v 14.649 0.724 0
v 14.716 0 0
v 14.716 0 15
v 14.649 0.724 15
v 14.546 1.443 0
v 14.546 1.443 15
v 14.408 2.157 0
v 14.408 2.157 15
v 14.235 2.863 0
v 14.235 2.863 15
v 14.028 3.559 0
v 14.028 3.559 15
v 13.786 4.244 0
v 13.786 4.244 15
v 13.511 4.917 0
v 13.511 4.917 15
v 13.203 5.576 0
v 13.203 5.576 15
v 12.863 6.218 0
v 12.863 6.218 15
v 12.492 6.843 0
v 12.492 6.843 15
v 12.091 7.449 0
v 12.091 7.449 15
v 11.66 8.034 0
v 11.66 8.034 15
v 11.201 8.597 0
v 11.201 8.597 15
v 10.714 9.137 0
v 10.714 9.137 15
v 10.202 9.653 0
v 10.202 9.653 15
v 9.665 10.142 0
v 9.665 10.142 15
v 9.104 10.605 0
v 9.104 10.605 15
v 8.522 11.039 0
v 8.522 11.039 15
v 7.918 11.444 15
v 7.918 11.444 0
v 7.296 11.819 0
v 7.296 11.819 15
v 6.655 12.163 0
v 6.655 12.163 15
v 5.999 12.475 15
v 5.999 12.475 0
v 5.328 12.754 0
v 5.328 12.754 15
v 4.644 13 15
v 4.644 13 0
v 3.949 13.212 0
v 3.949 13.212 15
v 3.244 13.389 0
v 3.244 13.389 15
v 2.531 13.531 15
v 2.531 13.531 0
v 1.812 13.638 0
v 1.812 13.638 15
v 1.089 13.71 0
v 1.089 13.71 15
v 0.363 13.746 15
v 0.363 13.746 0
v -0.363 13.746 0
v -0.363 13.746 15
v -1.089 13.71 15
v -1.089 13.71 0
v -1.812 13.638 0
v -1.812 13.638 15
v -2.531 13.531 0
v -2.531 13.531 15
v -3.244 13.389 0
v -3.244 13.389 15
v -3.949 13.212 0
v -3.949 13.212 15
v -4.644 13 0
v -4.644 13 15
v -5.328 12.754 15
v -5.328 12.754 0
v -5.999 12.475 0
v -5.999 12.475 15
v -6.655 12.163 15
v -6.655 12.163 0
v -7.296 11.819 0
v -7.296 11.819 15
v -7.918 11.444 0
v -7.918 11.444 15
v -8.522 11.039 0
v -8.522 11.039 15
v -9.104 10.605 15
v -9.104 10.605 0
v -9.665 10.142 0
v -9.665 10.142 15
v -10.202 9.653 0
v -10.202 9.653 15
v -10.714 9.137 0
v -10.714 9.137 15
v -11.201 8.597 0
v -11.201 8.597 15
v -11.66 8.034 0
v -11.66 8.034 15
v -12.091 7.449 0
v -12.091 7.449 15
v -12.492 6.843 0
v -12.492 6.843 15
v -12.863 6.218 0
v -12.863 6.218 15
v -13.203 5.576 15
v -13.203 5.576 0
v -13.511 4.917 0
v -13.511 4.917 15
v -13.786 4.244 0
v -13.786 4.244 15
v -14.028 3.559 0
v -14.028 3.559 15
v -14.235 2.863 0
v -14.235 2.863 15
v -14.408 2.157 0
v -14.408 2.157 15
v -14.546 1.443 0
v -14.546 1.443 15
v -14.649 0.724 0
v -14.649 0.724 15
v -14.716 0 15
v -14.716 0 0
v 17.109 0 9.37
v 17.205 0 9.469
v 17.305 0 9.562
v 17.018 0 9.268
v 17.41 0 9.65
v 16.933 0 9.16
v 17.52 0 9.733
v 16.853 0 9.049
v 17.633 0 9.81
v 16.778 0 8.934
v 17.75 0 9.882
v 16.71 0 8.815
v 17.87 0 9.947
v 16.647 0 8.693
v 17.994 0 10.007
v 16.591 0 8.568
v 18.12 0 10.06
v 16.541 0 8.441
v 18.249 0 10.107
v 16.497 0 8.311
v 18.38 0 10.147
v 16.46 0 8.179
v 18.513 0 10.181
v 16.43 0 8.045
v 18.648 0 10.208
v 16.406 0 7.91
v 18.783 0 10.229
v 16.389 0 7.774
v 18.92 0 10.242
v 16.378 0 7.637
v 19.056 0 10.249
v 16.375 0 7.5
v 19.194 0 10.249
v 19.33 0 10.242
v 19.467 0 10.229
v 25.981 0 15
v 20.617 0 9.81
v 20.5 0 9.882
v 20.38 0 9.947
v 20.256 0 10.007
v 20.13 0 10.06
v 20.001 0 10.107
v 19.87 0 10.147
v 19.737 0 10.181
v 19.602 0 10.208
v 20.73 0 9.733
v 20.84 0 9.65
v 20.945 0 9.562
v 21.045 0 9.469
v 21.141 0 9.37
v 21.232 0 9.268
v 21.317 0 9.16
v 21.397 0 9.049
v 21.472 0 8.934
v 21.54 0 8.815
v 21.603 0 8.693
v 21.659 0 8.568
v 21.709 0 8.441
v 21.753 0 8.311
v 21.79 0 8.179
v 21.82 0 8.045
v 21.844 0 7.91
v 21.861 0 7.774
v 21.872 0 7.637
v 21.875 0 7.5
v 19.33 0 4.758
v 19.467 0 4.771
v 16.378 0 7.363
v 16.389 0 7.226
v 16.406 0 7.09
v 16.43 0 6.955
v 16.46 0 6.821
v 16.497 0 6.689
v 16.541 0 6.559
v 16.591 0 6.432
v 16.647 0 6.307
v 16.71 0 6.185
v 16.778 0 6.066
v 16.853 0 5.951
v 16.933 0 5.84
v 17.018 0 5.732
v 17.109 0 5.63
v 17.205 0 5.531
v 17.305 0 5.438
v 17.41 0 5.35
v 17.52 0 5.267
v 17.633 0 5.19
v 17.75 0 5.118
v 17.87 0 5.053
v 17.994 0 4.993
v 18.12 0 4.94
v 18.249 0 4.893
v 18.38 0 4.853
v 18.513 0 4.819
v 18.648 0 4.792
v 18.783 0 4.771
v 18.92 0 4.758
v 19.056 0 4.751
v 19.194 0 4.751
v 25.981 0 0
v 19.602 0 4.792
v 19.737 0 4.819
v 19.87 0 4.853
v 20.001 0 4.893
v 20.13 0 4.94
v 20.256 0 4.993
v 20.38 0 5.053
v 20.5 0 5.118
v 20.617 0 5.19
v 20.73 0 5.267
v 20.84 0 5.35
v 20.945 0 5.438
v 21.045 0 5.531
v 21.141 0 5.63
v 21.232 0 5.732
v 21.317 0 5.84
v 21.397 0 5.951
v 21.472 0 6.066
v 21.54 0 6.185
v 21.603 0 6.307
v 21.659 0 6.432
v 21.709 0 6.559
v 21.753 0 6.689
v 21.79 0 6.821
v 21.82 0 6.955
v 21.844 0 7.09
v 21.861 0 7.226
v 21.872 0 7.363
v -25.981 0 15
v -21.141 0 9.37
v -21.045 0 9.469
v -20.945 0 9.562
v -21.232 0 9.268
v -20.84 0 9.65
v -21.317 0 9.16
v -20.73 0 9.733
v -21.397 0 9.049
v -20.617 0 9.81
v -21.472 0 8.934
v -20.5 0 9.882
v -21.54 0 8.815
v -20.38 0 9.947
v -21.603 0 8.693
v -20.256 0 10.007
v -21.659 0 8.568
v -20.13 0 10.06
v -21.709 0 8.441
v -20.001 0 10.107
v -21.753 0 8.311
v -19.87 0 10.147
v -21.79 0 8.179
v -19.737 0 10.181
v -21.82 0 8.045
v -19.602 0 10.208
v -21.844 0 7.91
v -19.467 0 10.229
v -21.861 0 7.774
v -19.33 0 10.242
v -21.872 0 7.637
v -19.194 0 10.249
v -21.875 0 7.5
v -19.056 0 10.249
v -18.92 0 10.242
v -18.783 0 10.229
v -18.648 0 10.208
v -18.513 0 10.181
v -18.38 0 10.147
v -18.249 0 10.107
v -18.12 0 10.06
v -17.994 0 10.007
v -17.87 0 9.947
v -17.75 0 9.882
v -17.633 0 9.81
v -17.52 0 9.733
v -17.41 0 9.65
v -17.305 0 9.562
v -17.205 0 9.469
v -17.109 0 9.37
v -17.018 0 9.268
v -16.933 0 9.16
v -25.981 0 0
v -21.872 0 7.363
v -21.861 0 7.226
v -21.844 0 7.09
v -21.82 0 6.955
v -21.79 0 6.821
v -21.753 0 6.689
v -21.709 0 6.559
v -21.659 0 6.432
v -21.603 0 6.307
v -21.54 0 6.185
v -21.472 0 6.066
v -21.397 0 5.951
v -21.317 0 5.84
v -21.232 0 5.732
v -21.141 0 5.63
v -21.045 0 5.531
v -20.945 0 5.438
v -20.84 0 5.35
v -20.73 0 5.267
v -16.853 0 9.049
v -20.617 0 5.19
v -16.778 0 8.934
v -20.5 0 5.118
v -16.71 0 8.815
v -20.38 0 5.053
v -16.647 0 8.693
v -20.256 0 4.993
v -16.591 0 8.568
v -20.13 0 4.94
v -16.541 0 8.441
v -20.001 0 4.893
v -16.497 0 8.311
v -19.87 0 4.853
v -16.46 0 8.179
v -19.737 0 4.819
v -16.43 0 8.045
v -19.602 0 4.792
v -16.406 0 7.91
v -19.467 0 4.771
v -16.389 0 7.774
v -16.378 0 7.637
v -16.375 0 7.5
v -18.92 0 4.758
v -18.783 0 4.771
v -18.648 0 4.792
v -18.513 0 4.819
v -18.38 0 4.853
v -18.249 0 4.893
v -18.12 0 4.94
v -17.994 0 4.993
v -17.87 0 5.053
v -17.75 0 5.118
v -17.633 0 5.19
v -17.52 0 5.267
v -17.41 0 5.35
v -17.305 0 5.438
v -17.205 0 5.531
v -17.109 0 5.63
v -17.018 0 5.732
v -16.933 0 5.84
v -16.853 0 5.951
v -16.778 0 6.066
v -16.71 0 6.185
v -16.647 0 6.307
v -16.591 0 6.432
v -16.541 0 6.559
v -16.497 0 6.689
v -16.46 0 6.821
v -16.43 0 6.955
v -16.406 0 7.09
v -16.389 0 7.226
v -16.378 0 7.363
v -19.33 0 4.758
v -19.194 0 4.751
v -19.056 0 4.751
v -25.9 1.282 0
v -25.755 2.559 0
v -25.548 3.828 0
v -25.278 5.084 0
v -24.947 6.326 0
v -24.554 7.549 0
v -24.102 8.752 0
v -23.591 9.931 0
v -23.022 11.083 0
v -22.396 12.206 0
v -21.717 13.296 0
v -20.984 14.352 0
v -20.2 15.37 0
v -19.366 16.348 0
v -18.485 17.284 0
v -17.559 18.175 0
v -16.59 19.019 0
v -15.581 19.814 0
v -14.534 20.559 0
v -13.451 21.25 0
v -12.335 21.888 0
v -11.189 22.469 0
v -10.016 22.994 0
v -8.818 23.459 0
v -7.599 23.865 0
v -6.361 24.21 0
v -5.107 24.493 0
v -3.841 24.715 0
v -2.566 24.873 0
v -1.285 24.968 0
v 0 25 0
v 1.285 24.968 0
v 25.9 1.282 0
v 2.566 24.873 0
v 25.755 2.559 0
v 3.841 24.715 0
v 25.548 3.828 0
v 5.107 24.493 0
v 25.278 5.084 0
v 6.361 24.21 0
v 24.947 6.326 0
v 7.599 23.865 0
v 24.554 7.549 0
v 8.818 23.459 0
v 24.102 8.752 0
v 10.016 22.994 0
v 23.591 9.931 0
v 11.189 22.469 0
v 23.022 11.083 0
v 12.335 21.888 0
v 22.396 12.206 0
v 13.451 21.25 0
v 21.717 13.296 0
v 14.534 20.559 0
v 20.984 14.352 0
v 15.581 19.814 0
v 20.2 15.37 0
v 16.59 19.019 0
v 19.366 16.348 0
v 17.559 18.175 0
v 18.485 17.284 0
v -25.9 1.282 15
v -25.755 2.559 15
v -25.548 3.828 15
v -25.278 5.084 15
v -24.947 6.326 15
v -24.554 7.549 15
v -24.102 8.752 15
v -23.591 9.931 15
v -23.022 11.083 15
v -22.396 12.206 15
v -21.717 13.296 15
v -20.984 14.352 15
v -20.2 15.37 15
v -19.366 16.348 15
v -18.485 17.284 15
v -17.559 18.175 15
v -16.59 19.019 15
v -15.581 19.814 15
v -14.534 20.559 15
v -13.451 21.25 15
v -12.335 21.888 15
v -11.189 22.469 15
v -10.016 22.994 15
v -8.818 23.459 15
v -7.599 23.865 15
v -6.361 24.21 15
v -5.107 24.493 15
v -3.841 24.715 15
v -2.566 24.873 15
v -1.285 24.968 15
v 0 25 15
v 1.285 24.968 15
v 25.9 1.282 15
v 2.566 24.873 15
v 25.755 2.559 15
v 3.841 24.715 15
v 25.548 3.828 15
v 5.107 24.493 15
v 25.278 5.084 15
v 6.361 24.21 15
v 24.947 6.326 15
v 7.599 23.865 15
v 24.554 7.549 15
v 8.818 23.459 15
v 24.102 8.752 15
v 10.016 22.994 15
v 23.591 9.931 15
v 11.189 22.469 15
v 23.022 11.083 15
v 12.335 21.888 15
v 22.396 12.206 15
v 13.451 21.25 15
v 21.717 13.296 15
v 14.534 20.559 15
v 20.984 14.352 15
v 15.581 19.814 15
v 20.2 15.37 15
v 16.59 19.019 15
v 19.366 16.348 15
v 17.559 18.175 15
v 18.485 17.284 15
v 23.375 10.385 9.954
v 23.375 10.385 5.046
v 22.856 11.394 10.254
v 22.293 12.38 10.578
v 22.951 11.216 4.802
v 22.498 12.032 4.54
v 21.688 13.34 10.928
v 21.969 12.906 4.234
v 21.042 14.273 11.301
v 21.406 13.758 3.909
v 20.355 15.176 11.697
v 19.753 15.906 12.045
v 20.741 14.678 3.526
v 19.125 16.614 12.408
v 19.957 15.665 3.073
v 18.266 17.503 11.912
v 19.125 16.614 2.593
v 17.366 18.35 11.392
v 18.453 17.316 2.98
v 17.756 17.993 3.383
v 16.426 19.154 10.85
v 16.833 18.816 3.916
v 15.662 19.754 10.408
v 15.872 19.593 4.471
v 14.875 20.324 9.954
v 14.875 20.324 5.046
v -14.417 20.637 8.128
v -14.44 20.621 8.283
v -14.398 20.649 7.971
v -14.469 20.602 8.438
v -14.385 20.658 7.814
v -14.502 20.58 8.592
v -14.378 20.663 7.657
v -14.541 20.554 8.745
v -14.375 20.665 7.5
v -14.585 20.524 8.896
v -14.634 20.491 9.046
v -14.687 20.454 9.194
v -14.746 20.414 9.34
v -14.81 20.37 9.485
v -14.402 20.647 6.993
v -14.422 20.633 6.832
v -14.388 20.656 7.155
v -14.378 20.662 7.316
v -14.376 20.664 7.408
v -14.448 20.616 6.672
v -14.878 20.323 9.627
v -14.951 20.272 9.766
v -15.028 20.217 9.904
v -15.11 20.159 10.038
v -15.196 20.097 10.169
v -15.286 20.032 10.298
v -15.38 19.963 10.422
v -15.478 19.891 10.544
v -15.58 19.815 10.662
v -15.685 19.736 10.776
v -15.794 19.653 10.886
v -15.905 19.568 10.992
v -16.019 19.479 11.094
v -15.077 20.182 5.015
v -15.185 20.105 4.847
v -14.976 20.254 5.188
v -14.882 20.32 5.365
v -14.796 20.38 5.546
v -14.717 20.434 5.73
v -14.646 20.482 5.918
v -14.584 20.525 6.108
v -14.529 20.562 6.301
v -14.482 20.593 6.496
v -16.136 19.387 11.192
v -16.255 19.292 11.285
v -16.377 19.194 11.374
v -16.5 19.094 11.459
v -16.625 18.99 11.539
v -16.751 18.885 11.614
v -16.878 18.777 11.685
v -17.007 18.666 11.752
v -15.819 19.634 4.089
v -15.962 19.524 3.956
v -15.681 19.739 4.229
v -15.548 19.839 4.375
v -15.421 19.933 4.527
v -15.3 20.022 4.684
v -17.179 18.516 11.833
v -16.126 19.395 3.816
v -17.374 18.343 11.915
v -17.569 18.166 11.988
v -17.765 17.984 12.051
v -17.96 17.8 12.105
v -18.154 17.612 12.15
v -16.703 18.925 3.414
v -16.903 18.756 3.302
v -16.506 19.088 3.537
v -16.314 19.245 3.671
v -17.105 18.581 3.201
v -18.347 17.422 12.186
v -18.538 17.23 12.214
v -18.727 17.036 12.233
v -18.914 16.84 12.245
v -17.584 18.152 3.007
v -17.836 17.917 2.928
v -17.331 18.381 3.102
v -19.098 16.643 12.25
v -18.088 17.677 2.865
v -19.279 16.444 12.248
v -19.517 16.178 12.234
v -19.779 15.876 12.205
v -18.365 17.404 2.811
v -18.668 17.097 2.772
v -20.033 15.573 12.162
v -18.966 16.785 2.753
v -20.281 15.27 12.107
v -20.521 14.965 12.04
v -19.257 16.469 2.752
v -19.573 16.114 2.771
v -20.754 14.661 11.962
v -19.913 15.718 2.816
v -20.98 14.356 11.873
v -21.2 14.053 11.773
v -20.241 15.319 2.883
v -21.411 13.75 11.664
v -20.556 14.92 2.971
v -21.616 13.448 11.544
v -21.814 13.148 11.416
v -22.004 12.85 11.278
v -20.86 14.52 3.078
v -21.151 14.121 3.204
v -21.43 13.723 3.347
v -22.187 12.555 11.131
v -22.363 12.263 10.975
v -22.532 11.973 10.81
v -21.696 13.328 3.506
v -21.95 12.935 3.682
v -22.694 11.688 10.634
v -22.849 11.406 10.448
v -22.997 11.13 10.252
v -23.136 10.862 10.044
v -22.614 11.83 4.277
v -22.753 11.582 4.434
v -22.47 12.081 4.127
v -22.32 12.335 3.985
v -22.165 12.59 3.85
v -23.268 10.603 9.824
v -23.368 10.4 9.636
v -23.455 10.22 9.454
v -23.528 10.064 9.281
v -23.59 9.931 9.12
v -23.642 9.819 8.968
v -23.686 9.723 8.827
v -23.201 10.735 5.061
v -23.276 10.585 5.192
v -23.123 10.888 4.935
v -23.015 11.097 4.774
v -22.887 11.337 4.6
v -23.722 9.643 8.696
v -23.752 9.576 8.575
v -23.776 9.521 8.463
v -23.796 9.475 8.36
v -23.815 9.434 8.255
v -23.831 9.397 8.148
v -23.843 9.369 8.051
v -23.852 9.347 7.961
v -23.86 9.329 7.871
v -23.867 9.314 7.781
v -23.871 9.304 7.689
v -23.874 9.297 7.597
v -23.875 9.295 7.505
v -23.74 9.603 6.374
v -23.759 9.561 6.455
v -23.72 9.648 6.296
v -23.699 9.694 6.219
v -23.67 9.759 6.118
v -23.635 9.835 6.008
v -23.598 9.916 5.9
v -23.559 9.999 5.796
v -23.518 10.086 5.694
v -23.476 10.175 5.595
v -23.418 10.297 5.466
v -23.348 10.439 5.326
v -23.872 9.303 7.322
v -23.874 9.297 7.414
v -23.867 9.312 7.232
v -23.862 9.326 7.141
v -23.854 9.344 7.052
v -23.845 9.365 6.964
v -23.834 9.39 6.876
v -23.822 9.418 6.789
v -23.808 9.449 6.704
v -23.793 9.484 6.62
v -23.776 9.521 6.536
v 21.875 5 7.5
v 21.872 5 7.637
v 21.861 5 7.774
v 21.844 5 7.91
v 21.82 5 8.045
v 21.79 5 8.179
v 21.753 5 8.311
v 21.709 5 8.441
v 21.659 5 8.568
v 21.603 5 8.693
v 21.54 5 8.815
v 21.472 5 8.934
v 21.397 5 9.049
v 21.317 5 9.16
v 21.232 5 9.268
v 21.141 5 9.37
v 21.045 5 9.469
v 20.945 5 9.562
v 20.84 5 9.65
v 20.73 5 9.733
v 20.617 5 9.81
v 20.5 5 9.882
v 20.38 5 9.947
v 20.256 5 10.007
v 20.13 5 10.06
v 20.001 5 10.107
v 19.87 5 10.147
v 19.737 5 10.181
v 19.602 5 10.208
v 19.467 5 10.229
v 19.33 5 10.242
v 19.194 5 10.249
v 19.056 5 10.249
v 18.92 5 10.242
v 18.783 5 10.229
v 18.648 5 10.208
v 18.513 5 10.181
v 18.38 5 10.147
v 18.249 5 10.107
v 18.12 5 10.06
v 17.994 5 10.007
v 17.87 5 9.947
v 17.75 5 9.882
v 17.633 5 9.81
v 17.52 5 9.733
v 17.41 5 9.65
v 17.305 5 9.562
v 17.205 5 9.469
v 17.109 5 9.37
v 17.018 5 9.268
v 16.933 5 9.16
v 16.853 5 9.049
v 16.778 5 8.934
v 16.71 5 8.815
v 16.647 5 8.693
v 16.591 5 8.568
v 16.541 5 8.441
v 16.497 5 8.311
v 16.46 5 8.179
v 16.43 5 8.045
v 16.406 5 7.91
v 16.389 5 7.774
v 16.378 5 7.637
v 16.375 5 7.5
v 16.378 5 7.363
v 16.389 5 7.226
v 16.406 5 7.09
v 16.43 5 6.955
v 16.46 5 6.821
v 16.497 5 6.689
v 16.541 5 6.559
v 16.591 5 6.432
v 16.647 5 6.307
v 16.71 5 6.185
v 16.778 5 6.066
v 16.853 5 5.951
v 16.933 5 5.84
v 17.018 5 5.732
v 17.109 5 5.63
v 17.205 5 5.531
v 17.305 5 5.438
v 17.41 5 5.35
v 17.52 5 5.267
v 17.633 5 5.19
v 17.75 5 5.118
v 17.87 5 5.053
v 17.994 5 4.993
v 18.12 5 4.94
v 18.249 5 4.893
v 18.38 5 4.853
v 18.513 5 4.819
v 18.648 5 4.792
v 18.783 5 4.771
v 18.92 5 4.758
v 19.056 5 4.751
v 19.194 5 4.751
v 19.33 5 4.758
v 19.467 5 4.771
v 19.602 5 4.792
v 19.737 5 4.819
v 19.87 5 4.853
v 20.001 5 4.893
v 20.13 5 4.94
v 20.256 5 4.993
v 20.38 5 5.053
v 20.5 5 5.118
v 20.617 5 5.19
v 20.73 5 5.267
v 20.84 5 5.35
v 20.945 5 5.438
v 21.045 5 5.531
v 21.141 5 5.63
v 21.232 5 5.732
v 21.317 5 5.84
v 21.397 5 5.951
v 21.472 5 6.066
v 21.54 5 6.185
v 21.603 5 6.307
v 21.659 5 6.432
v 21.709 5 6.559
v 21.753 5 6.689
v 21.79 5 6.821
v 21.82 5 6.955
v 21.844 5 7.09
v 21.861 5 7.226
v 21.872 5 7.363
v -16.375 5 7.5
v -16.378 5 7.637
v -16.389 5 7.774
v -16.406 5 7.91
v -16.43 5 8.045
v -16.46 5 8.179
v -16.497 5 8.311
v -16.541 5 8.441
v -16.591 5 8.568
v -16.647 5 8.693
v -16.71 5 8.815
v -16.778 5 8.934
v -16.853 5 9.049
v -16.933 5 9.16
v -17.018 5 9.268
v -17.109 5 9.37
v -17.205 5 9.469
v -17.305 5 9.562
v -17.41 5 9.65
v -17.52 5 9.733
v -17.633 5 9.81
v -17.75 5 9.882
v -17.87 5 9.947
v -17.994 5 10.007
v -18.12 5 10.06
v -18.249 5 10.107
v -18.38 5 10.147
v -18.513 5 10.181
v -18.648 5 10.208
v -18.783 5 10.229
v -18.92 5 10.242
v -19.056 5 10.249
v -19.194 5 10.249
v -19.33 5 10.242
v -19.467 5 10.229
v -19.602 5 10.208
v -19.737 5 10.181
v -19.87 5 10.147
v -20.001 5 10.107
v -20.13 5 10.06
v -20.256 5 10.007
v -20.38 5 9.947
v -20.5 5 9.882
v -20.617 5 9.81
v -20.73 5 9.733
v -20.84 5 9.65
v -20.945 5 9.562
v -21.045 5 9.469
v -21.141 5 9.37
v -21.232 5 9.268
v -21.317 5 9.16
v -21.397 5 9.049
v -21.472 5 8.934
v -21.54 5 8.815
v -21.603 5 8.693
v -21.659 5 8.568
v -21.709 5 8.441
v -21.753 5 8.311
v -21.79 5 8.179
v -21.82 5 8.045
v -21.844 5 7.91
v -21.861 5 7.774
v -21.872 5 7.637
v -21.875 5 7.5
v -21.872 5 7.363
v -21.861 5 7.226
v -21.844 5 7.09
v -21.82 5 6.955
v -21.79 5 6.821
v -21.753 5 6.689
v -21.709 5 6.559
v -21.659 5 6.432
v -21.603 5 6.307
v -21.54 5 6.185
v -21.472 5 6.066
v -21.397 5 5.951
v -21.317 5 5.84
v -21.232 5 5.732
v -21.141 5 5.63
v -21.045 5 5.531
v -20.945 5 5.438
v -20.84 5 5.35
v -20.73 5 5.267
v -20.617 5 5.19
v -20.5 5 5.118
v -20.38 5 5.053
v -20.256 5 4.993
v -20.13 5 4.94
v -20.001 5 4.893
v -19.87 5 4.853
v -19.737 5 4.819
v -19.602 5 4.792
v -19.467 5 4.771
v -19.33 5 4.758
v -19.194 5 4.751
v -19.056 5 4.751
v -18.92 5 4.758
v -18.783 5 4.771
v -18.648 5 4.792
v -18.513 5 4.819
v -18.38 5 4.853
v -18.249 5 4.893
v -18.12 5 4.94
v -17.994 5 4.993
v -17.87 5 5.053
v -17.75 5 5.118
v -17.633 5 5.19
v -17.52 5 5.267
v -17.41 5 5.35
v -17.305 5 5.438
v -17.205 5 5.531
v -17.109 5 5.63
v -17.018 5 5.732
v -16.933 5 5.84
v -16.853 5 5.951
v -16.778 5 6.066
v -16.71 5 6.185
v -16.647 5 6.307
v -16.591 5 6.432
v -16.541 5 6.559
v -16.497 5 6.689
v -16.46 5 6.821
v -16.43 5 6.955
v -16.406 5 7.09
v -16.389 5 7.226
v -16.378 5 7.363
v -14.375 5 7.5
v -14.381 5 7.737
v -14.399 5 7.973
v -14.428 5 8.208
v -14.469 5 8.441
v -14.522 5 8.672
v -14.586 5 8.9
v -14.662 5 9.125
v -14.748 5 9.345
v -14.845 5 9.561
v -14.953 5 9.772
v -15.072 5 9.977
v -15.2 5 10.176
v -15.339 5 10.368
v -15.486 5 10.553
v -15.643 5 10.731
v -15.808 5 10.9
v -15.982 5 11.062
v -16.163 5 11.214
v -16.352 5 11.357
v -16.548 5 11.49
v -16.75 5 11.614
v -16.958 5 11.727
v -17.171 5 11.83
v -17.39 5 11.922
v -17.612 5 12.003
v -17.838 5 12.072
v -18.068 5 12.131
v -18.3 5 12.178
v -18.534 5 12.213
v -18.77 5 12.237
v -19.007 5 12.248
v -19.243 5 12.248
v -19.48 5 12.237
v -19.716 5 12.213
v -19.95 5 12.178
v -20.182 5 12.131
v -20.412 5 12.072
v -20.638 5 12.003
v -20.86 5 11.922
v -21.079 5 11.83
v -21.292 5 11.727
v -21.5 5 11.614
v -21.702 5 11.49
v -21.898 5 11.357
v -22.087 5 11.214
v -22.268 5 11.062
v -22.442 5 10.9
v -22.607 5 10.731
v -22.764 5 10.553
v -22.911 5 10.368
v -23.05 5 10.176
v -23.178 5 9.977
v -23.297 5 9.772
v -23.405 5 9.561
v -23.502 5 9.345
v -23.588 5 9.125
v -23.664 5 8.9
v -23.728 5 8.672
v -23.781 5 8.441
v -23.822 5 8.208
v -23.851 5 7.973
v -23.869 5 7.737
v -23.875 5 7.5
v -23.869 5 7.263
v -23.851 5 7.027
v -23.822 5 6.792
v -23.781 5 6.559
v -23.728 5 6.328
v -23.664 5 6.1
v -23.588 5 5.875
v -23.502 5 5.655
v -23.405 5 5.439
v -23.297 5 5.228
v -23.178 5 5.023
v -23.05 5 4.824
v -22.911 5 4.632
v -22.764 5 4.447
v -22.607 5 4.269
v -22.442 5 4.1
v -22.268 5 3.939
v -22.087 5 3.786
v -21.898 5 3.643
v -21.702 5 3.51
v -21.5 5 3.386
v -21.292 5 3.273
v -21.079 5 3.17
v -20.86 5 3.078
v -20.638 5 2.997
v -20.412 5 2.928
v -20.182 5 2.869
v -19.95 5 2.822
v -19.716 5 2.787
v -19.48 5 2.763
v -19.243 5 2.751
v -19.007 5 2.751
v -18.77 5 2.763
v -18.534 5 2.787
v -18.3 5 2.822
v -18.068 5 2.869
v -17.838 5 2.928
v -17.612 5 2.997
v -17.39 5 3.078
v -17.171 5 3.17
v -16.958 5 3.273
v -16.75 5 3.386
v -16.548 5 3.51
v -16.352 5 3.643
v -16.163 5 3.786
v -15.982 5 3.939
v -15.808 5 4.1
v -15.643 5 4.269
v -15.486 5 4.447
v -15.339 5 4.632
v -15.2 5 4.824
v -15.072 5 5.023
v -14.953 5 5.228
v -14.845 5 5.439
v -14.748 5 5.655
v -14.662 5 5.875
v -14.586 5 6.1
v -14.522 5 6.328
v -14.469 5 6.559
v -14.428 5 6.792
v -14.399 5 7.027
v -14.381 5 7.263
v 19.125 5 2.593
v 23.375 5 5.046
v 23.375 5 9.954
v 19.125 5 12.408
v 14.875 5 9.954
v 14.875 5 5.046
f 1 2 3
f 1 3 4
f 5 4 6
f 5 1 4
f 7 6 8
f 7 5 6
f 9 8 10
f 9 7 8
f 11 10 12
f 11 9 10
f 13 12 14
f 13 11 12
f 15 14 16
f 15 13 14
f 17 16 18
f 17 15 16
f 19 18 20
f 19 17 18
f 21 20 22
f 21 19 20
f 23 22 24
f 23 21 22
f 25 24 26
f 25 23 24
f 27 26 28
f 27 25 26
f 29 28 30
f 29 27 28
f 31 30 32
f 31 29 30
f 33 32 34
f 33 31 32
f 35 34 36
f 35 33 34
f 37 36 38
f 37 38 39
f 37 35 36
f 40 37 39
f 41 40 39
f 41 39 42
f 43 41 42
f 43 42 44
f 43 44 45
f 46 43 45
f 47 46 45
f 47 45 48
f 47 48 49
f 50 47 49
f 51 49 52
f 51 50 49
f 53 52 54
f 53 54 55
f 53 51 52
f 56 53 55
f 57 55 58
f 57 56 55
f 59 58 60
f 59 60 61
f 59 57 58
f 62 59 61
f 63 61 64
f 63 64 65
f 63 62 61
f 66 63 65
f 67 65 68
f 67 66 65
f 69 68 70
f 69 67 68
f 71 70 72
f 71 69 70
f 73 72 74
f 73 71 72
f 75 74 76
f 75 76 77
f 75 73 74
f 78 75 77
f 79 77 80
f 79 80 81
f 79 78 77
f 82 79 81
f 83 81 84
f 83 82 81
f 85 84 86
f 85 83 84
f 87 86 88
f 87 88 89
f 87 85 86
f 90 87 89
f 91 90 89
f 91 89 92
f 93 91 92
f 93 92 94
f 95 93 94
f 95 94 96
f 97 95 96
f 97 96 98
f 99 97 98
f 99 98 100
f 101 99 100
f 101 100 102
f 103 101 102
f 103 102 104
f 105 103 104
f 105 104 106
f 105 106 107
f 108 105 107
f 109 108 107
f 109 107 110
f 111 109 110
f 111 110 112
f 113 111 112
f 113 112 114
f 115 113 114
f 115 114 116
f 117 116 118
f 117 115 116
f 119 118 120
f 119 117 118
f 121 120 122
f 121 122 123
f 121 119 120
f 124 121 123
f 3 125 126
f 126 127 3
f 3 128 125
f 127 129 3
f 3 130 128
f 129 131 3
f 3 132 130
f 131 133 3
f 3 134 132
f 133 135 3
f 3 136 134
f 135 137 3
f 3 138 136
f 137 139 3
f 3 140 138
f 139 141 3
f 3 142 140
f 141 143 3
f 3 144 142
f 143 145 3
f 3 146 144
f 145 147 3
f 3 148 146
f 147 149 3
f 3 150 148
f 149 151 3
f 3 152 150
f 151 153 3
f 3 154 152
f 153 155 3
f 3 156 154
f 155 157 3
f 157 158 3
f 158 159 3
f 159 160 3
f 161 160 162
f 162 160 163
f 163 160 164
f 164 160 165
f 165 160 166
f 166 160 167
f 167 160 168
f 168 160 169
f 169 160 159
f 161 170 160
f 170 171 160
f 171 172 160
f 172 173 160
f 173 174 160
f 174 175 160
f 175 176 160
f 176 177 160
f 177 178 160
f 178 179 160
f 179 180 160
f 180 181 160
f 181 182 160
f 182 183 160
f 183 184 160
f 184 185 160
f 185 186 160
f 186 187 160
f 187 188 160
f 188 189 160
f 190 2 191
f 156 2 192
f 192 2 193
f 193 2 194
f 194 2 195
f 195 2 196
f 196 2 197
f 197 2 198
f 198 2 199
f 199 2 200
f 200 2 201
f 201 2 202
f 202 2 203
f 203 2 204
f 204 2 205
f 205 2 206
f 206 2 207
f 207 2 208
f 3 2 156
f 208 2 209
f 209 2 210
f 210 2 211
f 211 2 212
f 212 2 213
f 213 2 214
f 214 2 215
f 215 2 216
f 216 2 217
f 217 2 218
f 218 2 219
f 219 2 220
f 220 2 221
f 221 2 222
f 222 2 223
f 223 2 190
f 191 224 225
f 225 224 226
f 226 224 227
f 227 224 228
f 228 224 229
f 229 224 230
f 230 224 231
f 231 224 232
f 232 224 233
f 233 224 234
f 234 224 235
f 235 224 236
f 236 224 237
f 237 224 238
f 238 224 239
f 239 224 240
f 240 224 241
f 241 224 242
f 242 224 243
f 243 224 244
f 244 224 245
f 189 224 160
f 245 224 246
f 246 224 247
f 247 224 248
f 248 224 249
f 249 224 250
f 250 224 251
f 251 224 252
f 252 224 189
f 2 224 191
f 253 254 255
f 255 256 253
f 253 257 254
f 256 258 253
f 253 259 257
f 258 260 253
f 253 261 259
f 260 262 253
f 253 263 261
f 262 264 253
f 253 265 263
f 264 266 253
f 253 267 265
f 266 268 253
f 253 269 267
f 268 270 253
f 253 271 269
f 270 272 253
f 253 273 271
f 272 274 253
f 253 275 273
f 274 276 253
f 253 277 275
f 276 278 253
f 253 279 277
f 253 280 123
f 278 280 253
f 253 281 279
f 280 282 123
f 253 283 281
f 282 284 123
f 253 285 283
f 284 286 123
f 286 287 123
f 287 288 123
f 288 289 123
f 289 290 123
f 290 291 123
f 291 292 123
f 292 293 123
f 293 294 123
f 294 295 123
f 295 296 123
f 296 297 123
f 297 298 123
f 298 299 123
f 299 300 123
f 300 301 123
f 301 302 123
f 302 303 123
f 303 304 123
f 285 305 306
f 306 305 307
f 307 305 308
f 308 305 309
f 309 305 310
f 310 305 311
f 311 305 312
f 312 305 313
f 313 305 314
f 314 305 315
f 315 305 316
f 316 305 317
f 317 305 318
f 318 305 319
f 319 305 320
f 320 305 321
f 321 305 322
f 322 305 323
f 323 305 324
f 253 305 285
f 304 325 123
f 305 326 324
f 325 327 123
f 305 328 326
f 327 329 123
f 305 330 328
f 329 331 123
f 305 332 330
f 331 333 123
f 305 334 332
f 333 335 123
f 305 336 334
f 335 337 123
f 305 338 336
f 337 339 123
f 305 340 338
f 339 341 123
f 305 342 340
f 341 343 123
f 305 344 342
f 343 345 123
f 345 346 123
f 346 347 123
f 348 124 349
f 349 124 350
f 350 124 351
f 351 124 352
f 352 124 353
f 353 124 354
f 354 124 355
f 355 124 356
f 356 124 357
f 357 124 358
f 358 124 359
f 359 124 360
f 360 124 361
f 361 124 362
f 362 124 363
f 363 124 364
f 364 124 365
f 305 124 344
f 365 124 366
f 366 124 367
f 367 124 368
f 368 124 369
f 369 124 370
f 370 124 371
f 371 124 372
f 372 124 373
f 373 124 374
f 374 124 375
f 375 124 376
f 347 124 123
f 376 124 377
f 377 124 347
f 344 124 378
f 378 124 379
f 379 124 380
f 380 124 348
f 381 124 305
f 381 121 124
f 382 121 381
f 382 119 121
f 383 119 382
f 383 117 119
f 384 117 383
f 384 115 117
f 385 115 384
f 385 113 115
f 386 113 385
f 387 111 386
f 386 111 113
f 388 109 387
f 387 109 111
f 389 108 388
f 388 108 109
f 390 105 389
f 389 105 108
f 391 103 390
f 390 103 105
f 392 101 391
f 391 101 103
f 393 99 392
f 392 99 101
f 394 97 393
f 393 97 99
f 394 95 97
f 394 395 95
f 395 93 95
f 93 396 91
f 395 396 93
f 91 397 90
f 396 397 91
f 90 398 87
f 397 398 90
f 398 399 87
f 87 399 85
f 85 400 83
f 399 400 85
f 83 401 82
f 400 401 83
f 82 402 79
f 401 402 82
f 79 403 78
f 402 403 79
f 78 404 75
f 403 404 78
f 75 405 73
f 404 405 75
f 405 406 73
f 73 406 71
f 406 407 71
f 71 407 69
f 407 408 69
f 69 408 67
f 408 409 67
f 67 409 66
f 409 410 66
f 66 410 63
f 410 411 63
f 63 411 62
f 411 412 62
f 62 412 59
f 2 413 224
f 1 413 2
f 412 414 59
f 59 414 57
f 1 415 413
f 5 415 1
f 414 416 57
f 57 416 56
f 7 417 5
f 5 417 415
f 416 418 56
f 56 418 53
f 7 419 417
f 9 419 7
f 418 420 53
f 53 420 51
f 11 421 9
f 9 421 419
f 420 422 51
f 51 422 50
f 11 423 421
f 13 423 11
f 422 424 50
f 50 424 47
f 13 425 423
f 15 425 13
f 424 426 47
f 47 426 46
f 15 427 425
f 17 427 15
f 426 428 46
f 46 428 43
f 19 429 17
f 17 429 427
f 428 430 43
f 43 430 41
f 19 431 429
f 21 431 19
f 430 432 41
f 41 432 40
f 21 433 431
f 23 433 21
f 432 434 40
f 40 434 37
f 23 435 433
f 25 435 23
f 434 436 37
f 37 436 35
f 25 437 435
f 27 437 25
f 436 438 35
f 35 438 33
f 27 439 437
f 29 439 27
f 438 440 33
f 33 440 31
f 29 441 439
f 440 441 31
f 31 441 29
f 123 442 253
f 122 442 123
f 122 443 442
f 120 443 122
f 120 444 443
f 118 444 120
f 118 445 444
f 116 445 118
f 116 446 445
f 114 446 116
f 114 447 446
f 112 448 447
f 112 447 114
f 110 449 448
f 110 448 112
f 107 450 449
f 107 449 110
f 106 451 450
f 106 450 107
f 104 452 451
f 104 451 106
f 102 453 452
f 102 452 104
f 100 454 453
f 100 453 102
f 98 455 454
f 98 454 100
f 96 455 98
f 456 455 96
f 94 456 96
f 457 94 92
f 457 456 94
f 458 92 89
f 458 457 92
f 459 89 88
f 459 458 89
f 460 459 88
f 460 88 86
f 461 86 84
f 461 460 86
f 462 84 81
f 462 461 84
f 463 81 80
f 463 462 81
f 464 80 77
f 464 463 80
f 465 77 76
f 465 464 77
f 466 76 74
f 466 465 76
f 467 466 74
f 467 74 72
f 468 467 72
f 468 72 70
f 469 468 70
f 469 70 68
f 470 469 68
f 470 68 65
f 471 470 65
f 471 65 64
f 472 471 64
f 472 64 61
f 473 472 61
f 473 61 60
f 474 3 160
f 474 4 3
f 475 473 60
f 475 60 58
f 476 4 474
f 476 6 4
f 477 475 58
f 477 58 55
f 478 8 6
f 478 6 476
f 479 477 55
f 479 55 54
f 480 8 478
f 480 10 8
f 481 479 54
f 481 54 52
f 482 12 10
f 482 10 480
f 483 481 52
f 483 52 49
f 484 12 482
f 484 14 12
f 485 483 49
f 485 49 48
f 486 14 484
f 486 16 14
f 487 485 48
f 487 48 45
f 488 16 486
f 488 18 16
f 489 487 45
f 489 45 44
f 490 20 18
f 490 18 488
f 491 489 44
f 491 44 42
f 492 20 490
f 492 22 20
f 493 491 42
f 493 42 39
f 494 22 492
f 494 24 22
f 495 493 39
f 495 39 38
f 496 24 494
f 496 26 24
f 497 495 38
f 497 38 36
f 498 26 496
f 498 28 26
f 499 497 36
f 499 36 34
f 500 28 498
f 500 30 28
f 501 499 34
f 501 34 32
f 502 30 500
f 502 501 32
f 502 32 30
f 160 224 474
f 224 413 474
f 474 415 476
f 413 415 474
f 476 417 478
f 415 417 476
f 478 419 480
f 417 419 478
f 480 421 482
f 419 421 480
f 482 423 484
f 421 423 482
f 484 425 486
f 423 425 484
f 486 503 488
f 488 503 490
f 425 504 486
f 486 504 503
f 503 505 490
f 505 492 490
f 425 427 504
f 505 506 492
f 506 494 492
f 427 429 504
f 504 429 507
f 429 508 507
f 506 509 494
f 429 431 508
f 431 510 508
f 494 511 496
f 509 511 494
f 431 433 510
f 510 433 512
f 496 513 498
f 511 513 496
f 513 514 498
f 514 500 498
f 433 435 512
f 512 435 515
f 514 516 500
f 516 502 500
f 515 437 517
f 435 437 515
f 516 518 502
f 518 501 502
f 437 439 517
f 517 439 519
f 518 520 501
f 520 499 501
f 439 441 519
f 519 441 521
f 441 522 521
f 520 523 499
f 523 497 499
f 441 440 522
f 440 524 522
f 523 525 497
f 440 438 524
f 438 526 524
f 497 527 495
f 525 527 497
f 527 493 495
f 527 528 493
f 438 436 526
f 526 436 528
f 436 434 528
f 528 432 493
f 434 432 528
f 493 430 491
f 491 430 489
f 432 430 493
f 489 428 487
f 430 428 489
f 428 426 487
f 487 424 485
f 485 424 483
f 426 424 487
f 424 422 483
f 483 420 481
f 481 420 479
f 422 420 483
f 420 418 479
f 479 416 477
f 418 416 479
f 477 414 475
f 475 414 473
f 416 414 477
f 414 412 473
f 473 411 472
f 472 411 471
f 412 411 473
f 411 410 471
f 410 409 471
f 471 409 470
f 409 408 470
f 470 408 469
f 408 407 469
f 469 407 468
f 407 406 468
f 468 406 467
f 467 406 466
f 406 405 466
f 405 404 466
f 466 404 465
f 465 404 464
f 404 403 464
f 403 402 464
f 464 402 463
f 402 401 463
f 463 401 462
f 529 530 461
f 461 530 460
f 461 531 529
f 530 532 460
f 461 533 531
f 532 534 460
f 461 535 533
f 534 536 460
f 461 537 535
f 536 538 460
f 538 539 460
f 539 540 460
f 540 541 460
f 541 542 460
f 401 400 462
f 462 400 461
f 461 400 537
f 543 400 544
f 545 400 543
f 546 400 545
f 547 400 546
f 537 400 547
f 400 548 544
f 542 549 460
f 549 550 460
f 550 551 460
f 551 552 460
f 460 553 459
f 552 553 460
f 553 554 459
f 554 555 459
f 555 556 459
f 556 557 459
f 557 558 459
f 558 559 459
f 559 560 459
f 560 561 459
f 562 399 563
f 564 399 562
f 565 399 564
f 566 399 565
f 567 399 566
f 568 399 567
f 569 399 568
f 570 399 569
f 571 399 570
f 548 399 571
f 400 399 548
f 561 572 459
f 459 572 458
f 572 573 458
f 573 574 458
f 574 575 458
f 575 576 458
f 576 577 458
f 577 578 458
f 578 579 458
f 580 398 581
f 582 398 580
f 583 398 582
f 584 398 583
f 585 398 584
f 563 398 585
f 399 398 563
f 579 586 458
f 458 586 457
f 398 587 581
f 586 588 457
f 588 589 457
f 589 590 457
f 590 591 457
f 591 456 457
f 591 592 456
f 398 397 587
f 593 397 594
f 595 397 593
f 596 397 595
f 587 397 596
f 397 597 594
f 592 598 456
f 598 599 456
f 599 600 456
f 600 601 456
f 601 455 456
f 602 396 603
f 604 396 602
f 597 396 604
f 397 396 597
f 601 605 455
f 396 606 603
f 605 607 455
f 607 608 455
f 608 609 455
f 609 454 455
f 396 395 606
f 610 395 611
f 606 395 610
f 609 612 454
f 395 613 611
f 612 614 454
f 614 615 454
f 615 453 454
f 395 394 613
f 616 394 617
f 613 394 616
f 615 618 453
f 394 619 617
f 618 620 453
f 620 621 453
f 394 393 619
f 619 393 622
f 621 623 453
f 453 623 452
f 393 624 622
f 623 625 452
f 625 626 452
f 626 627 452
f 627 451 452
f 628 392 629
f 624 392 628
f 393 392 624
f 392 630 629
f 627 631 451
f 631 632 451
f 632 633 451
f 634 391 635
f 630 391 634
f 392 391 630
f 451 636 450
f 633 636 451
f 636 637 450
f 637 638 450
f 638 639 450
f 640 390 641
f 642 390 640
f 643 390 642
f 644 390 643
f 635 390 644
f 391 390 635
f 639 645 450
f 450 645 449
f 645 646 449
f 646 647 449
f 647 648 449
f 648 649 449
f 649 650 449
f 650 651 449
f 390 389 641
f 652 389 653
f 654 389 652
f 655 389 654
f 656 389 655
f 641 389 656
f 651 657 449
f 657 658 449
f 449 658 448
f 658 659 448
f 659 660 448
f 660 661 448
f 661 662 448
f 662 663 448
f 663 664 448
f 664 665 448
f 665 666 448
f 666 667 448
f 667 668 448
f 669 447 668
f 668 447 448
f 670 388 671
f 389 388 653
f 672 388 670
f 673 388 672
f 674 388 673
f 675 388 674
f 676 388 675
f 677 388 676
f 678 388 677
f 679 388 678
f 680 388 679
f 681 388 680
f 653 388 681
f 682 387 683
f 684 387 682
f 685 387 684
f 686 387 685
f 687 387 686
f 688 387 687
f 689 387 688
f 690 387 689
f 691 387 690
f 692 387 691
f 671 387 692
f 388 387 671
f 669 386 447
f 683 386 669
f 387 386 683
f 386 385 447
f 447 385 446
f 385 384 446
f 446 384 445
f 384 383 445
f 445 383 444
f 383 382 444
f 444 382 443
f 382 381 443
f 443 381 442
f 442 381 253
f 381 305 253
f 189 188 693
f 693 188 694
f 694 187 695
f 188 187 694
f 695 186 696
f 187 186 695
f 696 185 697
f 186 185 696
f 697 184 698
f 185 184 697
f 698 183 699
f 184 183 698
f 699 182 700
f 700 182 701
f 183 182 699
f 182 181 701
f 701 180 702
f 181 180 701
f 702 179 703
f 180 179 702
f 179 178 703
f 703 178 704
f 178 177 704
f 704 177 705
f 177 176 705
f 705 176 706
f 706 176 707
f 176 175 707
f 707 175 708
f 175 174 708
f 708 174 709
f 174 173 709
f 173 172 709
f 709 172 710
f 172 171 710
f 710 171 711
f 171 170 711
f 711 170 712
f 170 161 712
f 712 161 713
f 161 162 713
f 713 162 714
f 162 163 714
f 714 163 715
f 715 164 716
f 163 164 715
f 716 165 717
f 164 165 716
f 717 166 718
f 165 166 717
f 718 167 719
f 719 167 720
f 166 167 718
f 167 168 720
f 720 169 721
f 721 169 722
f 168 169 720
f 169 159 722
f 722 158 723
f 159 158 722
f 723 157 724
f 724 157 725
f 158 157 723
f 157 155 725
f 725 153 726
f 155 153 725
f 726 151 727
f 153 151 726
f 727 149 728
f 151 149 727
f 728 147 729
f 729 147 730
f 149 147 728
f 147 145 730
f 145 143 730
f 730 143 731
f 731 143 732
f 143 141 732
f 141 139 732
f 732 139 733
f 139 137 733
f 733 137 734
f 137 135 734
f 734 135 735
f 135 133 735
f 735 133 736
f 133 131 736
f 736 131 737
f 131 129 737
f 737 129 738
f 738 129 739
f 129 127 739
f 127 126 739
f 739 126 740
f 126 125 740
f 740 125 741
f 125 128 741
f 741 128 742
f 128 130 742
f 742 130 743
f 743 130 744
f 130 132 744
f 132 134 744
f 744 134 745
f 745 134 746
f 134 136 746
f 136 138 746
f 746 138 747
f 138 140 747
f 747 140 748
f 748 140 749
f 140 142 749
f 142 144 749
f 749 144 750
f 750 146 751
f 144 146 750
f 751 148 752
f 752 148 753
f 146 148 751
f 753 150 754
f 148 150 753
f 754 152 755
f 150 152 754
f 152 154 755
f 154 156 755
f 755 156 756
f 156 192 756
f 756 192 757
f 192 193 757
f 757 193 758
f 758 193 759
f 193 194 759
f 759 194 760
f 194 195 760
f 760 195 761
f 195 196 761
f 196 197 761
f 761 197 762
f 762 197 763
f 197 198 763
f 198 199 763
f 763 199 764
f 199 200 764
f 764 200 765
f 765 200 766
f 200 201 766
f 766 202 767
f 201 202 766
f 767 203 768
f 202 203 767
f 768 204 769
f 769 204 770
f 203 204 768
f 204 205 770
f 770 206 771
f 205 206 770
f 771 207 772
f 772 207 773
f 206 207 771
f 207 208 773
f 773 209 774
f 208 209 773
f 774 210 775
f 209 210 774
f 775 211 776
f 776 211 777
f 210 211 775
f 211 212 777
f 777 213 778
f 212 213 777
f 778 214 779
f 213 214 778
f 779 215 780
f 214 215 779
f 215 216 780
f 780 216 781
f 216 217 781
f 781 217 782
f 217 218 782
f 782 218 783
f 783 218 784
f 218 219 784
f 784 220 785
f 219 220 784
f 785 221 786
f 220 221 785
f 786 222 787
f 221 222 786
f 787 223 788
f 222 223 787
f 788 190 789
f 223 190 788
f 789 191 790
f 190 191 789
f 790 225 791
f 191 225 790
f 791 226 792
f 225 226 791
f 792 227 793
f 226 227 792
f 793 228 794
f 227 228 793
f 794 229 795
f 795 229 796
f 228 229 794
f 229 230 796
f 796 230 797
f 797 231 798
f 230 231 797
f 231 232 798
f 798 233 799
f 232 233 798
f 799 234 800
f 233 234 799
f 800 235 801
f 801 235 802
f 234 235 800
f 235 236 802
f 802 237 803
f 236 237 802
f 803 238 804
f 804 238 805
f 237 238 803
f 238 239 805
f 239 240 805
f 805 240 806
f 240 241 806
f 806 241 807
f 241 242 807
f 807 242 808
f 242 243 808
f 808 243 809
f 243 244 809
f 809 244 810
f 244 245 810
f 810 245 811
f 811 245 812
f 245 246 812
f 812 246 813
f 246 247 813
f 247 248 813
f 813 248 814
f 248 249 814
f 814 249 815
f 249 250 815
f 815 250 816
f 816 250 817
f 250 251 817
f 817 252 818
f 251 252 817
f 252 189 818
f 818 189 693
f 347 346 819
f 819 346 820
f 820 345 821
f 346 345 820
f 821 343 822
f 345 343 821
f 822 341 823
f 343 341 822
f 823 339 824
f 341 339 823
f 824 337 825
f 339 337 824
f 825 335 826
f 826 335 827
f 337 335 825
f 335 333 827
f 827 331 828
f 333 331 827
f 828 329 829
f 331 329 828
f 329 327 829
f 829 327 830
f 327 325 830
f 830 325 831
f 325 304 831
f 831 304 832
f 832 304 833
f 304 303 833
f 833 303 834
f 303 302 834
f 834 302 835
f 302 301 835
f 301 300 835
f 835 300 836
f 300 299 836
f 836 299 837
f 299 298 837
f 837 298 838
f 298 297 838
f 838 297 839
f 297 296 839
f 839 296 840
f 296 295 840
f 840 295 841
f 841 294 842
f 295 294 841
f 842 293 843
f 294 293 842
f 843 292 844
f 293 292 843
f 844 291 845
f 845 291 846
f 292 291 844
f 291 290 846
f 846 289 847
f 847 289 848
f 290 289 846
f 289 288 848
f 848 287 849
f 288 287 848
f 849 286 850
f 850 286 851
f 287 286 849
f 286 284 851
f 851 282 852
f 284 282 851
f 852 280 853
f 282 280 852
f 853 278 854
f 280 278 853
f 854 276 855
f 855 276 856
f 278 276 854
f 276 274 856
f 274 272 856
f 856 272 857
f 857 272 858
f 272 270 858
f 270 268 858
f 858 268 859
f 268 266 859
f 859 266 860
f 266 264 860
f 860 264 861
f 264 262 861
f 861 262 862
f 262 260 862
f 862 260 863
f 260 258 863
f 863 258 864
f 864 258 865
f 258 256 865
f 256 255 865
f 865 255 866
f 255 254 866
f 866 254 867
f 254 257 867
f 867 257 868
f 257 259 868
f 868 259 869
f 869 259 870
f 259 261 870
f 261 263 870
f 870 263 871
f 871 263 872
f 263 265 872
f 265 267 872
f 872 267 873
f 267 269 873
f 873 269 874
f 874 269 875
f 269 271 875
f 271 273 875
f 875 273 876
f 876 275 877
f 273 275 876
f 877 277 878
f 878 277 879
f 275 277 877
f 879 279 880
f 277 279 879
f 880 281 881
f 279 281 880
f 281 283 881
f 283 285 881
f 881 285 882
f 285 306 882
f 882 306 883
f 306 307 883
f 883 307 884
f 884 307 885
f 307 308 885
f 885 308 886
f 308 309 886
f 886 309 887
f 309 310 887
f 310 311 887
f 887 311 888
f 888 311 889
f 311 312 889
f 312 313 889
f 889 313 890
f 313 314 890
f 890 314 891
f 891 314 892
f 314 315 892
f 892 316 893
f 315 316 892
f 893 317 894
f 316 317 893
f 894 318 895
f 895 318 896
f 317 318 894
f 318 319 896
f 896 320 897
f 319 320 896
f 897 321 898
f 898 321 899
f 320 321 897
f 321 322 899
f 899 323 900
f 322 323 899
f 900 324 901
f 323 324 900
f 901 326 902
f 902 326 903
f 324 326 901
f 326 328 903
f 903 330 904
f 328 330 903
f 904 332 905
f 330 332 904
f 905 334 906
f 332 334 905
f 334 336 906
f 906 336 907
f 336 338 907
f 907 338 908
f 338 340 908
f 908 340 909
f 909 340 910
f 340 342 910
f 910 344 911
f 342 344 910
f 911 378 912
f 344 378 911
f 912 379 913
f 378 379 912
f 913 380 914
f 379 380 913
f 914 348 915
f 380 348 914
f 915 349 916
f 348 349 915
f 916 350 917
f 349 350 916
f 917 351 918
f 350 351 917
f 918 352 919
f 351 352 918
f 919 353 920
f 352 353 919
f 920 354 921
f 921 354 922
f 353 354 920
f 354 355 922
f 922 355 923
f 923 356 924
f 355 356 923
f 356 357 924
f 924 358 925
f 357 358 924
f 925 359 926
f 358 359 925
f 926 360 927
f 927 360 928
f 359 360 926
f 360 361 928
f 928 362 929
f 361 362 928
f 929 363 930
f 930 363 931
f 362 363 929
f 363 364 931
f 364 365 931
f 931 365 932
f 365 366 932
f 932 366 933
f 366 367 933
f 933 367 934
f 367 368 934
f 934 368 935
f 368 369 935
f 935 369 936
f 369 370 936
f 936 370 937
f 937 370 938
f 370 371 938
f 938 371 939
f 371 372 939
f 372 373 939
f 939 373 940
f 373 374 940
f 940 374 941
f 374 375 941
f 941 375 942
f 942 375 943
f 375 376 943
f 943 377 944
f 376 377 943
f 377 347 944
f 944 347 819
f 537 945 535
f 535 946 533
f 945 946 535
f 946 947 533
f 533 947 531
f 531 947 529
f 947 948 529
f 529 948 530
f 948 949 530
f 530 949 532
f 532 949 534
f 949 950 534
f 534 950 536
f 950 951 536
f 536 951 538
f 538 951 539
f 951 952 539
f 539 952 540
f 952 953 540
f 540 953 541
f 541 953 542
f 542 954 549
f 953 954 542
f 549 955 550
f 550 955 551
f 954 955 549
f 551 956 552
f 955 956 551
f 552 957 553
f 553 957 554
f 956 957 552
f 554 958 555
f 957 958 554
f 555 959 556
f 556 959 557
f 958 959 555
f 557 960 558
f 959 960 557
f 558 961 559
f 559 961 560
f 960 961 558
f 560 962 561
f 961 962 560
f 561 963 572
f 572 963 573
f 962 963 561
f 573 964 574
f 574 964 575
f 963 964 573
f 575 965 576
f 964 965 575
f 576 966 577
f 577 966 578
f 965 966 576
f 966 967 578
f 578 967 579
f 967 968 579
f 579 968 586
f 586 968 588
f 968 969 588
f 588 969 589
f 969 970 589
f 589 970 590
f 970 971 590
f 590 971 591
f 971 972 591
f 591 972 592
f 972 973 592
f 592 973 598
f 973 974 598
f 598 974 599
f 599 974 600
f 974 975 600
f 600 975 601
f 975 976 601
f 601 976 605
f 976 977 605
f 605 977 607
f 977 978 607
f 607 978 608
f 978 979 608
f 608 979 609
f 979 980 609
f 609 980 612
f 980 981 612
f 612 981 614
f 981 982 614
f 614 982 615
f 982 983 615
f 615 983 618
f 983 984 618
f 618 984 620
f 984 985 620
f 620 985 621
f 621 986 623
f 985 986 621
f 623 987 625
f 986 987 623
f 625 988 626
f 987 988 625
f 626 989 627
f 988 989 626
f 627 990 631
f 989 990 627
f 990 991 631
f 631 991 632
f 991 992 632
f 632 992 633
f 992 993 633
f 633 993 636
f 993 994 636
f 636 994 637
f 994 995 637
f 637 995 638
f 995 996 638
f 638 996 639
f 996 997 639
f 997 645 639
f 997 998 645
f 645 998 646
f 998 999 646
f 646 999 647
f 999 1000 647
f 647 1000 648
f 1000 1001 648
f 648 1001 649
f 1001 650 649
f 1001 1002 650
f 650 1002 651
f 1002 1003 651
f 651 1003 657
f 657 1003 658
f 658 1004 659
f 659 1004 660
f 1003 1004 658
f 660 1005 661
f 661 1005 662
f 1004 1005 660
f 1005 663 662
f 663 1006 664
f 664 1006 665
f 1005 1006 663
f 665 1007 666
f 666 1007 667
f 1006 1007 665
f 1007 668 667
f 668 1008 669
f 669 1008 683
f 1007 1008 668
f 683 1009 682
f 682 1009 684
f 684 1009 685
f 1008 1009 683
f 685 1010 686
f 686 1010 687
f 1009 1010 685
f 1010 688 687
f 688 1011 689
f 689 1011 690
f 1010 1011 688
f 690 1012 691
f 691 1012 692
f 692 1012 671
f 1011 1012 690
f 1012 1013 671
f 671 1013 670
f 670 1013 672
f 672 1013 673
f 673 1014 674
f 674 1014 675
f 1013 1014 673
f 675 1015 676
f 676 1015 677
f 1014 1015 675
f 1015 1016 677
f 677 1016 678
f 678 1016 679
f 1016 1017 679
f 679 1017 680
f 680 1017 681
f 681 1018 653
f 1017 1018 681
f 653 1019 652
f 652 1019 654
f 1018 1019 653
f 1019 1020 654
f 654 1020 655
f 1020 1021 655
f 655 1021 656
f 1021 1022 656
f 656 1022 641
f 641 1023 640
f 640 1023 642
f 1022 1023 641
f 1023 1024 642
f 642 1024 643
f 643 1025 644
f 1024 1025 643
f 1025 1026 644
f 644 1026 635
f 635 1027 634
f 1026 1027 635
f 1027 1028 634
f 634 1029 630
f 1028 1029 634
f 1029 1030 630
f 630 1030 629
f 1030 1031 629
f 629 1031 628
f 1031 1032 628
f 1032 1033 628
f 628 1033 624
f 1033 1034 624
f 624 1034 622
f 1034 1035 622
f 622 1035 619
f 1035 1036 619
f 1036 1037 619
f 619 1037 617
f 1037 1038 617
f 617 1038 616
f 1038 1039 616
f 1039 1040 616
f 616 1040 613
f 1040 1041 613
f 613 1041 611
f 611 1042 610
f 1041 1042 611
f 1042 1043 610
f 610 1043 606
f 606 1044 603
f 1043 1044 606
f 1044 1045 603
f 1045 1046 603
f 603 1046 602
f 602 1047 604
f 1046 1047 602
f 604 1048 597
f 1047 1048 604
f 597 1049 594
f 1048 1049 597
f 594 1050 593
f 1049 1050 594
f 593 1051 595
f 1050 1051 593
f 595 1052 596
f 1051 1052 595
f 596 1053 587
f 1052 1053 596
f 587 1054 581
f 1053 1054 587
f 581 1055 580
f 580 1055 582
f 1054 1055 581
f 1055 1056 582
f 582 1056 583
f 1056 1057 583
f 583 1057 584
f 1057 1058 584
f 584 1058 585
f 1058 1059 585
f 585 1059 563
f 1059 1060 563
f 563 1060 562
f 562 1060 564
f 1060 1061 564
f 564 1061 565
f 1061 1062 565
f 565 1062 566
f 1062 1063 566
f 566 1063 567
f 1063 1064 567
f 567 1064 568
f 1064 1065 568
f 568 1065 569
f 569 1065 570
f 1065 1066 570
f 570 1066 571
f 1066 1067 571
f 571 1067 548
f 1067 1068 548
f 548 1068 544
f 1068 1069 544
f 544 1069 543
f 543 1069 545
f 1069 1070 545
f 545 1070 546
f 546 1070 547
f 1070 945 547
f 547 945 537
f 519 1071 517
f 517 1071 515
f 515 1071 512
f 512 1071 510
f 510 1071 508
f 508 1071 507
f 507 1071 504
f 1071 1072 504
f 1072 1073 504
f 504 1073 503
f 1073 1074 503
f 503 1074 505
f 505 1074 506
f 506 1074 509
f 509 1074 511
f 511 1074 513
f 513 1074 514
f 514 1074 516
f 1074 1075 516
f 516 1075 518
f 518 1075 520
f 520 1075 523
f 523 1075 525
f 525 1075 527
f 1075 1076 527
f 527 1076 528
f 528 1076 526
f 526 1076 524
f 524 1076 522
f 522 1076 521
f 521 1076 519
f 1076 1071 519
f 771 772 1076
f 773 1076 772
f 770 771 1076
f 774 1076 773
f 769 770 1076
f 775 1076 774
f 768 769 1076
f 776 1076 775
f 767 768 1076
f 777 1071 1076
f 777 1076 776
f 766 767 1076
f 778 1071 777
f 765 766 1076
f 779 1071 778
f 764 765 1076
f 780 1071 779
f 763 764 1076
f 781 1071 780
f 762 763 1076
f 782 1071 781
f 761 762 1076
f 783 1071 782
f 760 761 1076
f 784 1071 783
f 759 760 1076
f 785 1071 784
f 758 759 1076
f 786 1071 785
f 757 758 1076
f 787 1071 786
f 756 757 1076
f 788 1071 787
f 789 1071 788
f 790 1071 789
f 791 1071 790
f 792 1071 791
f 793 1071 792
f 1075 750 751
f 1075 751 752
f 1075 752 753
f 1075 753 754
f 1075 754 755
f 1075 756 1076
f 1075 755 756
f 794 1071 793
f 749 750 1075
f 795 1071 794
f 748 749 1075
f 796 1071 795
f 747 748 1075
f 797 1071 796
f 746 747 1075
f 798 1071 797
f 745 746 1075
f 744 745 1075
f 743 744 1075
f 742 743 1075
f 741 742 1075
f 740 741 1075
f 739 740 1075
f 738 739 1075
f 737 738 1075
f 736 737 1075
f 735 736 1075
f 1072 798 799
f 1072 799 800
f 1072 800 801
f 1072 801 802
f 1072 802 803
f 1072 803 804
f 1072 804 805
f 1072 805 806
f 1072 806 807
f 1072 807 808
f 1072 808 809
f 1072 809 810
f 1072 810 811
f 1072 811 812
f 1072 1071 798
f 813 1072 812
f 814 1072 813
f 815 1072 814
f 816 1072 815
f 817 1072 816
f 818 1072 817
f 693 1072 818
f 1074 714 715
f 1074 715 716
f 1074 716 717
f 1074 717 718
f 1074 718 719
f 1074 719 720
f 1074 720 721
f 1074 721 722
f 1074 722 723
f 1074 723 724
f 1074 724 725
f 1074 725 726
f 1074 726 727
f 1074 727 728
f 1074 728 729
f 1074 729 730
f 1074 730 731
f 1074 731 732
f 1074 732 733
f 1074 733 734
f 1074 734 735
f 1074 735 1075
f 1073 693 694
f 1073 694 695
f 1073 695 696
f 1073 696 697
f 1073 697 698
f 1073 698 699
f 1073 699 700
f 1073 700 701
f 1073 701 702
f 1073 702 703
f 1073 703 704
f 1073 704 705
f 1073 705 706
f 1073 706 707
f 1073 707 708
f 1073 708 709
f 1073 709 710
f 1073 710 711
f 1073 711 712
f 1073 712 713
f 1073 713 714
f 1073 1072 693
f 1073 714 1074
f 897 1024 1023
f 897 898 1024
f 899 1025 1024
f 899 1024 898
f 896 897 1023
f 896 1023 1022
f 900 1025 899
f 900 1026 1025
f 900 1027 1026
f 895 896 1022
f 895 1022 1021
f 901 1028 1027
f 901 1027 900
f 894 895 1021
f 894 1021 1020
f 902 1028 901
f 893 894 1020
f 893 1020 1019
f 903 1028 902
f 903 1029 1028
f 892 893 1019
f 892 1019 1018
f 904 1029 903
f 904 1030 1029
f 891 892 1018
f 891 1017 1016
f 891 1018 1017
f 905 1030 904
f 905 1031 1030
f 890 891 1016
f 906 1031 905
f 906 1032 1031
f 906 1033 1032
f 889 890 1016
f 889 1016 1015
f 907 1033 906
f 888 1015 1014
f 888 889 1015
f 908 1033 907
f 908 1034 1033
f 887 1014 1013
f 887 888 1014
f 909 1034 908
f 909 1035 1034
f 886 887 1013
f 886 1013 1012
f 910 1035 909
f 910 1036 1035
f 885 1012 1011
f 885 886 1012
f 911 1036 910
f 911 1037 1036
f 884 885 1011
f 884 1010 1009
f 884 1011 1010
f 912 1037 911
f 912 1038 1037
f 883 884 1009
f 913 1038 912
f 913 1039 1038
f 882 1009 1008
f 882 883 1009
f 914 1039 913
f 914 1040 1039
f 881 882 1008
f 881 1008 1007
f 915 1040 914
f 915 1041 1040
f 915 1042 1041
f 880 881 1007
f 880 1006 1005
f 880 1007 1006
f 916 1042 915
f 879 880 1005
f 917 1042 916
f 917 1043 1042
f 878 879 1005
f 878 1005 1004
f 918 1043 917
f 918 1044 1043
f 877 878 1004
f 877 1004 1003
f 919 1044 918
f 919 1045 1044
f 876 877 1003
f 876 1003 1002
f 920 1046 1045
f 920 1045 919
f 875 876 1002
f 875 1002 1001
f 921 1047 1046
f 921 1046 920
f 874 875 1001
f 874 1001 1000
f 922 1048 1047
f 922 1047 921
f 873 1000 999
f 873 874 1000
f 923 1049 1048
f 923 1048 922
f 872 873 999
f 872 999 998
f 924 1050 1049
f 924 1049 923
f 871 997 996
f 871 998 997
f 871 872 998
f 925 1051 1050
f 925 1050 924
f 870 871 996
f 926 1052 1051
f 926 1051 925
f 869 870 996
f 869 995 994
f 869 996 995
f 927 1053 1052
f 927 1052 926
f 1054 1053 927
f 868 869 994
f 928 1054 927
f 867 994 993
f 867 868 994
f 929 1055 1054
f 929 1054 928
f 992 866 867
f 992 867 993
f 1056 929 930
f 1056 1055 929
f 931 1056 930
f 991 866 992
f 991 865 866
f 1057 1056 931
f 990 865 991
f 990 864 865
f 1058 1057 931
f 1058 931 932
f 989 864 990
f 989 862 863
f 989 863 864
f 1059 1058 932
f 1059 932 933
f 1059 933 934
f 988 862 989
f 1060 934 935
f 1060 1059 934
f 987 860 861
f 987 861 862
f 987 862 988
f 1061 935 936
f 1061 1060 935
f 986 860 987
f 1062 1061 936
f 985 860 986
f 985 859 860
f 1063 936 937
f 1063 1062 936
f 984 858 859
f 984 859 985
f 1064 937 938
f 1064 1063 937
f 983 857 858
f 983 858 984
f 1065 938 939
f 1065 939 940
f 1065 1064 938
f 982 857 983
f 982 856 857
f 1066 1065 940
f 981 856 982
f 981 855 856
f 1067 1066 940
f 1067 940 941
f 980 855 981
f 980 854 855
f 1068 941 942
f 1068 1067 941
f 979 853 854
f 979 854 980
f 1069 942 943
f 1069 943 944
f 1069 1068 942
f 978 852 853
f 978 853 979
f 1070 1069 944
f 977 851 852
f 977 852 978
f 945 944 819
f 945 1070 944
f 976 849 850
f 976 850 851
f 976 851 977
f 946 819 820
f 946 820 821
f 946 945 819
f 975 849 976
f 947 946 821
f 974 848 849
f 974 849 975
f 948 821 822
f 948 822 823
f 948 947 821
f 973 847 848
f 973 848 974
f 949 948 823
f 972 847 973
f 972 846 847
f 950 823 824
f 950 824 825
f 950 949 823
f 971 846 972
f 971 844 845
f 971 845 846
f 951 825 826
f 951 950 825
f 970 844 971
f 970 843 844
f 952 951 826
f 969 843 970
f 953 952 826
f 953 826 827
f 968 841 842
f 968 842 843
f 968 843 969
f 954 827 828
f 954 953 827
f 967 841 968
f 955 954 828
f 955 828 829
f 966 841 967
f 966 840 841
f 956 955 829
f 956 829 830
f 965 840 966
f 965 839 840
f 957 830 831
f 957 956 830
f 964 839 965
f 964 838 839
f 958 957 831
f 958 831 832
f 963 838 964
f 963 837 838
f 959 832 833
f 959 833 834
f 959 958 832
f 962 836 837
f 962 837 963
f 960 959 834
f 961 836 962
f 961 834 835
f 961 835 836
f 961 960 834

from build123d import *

# Parameters (mm, degrees)
PAD_DEPTH       = 15
SKETCH001_R     = 2.75
POCKET_DEPTH    = 25.001
SKETCH002_R     = 4.75
POCKET001_DEPTH = 20.001


with BuildPart() as part:
    # Sketch → Pad (new body)
    with BuildSketch(Plane.XY):
        with BuildLine():
            ThreePointArc((14.716063, 0), (0, 13.75), (-14.716063, 0))
            Line((-25.980762, 0), (-14.716063, 0))
            ThreePointArc((25.980762, 0), (0, 25), (-25.980762, 0))
            Line((14.716063, 0), (25.980762, 0))
        make_face()
    extrude(amount=PAD_DEPTH)

    # Sketch001 (on Face2 of Pad) → Pocket (cut, through all)
    with BuildSketch(Plane.XZ):
        with Locations((-19.125, 7.5)):
            Circle(SKETCH001_R)
        with Locations((19.125, 7.5)):
            Circle(SKETCH001_R)
    extrude(amount=-POCKET_DEPTH, mode=Mode.SUBTRACT)

    # Sketch002 (on DatumPlane) → Pocket001 (cut, through all)
    with BuildSketch(Plane.XZ.offset(-5)):
        with Locations((-19.125, 7.5)):
            Circle(SKETCH002_R)
        Polygon((19.125, 2.592523), (23.375, 5.046261), (23.375, 9.953739), (19.125, 12.407477), (14.875, 9.953739), (14.875, 5.046261), align=None)
    extrude(amount=-POCKET001_DEPTH, mode=Mode.SUBTRACT)


solid = part.part
